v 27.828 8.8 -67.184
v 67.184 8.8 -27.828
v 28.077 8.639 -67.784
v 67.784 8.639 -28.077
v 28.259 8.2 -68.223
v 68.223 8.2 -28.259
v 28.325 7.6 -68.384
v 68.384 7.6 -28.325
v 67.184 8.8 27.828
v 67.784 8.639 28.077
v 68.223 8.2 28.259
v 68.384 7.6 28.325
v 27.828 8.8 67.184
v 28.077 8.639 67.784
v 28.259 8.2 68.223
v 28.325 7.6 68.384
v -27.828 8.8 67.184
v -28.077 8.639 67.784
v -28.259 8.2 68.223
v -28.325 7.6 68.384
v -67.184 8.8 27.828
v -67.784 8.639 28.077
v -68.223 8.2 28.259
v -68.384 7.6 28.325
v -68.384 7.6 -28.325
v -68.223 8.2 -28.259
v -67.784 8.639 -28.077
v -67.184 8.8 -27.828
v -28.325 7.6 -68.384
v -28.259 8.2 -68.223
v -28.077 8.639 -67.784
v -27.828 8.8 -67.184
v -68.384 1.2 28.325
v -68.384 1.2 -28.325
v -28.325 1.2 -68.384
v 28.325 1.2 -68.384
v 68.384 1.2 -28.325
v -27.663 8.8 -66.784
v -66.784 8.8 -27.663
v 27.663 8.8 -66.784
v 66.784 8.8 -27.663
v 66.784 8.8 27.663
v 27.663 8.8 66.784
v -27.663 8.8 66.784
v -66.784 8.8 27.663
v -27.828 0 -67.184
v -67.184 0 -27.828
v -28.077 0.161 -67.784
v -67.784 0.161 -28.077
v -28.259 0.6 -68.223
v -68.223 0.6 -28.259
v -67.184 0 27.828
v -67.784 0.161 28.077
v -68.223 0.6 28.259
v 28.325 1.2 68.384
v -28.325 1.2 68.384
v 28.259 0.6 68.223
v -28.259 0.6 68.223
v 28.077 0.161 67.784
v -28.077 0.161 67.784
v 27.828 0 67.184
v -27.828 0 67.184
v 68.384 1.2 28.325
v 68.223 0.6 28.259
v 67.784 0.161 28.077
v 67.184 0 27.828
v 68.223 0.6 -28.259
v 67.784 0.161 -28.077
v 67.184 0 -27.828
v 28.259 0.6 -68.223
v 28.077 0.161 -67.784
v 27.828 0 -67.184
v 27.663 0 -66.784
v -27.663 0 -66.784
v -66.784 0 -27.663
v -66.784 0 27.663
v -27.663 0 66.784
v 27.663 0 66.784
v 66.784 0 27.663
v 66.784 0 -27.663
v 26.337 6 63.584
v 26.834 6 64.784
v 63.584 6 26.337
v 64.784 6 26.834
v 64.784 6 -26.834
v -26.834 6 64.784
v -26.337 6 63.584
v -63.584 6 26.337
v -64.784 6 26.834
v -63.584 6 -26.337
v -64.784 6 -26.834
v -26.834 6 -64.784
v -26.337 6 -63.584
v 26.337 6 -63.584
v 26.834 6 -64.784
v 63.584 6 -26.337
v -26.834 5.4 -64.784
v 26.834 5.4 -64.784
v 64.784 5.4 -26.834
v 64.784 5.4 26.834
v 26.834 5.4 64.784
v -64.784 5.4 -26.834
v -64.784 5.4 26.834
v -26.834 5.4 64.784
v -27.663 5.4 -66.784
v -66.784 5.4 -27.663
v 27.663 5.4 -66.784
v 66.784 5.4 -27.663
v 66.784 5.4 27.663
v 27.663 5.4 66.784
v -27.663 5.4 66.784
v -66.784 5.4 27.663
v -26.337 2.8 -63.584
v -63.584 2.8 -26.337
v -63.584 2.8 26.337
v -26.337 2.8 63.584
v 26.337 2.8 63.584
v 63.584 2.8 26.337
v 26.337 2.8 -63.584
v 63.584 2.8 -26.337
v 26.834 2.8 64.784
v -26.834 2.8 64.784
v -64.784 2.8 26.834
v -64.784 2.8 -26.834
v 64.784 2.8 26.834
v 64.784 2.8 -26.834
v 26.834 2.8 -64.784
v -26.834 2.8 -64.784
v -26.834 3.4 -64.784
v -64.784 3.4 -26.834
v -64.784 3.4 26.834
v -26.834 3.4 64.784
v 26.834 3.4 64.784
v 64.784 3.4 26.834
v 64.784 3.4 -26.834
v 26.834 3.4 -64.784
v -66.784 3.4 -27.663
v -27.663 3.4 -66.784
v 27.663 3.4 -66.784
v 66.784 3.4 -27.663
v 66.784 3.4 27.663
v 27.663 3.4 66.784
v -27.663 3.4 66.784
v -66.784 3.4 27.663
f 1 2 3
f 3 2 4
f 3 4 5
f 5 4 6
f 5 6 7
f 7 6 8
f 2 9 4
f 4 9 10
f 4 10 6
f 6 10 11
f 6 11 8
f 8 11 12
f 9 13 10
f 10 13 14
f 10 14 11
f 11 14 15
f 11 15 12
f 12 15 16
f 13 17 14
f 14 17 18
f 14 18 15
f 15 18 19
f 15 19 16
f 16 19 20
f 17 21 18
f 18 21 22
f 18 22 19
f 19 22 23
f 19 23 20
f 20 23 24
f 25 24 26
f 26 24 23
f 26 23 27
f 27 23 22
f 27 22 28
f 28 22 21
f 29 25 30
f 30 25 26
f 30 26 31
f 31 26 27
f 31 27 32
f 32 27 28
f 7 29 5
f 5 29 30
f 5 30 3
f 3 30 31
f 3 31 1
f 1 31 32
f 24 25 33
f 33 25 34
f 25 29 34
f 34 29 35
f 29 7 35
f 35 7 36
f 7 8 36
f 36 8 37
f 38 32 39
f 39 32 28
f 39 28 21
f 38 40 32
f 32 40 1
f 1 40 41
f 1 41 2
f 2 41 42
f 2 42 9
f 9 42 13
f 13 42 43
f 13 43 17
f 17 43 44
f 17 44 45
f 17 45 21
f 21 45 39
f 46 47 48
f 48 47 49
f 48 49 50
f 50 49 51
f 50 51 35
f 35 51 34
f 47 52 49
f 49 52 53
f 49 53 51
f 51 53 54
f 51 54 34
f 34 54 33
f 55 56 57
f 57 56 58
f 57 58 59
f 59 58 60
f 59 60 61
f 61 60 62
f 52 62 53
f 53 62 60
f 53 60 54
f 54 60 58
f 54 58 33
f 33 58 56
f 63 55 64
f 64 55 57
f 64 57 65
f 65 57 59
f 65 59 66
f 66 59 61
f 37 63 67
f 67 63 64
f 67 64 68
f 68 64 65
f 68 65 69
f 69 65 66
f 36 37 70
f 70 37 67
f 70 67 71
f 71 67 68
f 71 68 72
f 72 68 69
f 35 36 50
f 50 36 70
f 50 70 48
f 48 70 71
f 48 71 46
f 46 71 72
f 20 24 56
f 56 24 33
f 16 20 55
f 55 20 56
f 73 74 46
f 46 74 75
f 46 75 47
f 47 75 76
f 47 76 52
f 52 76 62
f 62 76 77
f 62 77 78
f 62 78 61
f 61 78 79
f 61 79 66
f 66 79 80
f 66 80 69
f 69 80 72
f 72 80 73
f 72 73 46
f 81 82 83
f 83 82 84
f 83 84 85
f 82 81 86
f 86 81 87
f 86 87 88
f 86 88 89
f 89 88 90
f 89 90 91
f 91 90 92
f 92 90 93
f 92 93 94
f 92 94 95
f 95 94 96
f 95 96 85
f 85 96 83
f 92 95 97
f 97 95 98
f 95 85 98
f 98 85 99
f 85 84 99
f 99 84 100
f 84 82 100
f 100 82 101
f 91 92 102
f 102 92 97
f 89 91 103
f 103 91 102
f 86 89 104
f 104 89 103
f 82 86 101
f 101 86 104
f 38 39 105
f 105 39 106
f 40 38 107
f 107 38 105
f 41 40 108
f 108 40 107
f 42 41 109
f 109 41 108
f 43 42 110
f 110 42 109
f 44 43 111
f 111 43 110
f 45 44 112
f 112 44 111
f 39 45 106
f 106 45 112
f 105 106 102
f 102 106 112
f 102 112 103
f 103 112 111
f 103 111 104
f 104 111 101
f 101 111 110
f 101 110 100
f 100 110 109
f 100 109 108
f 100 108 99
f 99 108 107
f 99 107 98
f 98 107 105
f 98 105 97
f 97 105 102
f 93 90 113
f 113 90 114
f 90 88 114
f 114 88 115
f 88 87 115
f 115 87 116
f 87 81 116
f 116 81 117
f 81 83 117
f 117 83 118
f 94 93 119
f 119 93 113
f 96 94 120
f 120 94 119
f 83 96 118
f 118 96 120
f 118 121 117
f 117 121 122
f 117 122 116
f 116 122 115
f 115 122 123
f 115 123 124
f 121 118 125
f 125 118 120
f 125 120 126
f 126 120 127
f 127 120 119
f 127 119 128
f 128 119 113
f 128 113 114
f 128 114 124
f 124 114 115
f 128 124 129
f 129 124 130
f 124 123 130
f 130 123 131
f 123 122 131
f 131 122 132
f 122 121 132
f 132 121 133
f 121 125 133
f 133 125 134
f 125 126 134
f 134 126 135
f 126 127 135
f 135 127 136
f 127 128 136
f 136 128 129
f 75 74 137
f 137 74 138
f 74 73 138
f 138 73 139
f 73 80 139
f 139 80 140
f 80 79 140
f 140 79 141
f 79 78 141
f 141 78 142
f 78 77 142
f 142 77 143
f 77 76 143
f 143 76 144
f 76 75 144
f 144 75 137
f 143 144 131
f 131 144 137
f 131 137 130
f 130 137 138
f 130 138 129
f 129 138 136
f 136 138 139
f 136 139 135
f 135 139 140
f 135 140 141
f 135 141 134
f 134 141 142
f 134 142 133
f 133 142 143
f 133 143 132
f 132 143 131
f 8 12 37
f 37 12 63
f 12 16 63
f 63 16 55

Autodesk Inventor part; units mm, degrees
ref_plane "YZ Plane" through (0, 0, 0) normal (1, 0, 0) x (0, 1, 0)
ref_plane "XZ Plane" through (0, 0, 0) normal (0, 1, 0) x (-1, 0, 0)
sketch "스케치1" plane through (0, 0, 0) normal (0, 1, 0) x (-1, 0, 0)
  line L0 (-65.1838, 27) -> (-27, 65.1838)
  line L1 (-27, 65.1838) -> (27, 65.1838)
  line L2 (27, 65.1838) -> (65.1838, 27)
  line L3 (65.1838, 27) -> (65.1838, -27)
  line L4 (65.1838, -27) -> (27, -65.1838)
  line L5 (27, -65.1838) -> (-27, -65.1838)
  line L6 (-27, -65.1838) -> (-65.1838, -27)
  line L7 (-65.1838, -27) -> (-65.1838, 27)
  line L8 (68.3838, 28.3255) -> (68.3838, -28.3255)
  line L9 (68.3838, -28.3255) -> (28.3255, -68.3838)
  line L10 (28.3255, -68.3838) -> (-28.3255, -68.3838)
  line L11 (-28.3255, -68.3838) -> (-68.3838, -28.3255)
  line L12 (-68.3838, -28.3255) -> (-68.3838, 28.3255)
  line L13 (-68.3838, 28.3255) -> (-28.3255, 68.3838)
  line L14 (-28.3255, 68.3838) -> (28.3255, 68.3838)
  line L15 (28.3255, 68.3838) -> (68.3838, 28.3255)
  point P0 (0, 0)
  point P1 (0, 0)
  point P2 (0, 0)
  dimension "d0" = 54
  dimension "d1" = 3.2
extrude "돌출1" add sketch "스케치1" along normal blind 8.8 contours L0 L1 L2 L3 L4 L5 L6 L7 | L8 L9 L10 L11 L12 L13 L14 L15
sketch "스케치3" plane through (0, 0, 0) normal (0, -1, 0) x (1, 0, 0)
  line L0 (-26.8343, 64.7838) -> (26.8343, 64.7838)
  line L1 (26.8343, 64.7838) -> (64.7838, 26.8343)
  line L2 (64.7838, 26.8343) -> (64.7838, -26.8343)
  line L3 (64.7838, -26.8343) -> (26.8343, -64.7838)
  line L4 (26.8343, -64.7838) -> (-26.8343, -64.7838)
  line L5 (-26.8343, -64.7838) -> (-64.7838, -26.8343)
  line L6 (-64.7838, -26.8343) -> (-64.7838, 26.8343)
  line L7 (-64.7838, 26.8343) -> (-26.8343, 64.7838)
  line L8 (-27.6627, 66.7838) -> (27.6627, 66.7838)
  line L9 (27.6627, 66.7838) -> (66.7838, 27.6627)
  line L10 (66.7838, 27.6627) -> (66.7838, -27.6627)
  line L11 (66.7838, -27.6627) -> (27.6627, -66.7838)
  line L12 (27.6627, -66.7838) -> (-27.6627, -66.7838)
  line L13 (-27.6627, -66.7838) -> (-66.7838, -27.6627)
  line L14 (-66.7838, -27.6627) -> (-66.7838, 27.6627)
  line L15 (-66.7838, 27.6627) -> (-27.6627, 66.7838)
  line L16 (-28.3255, 68.3838) -> (28.3255, 68.3838) projected
  point P0 (0, 0)
  point P1 (0, 0)
  point P2 (0, 0)
  point P3 (0, 0)
  dimension "d9" = 2
  dimension "d144" = 1.6
extrude "돌출3" cut sketch "스케치3" against normal blind 3.4
sketch "스케치14" plane through (0, 0, 0) normal (0, -1, 0) x (1, 0, 0)
  line L0 (64.7838, 26.8343) -> (26.8343, 64.7838) projected
  line L1 (26.8343, 64.7838) -> (-26.8343, 64.7838) projected
  line L2 (-26.8343, 64.7838) -> (-64.7838, 26.8343) projected
  line L3 (-64.7838, 26.8343) -> (-64.7838, -26.8343) projected
  line L4 (-64.7838, -26.8343) -> (-26.8343, -64.7838) projected
  line L5 (-26.8343, -64.7838) -> (26.8343, -64.7838) projected
  line L6 (26.8343, -64.7838) -> (64.7838, -26.8343) projected
  line L7 (64.7838, -26.8343) -> (64.7838, 26.8343) projected
  point P0 (0, 0)
extrude "돌출16" cut sketch "스케치14" against normal blind 2.8
sketch "스케치15" plane through (0, 2.8, 0) normal (0, -1, 0) x (1, 0, 0)
  line L0 (-26.3373, 63.5838) -> (26.3373, 63.5838)
  line L1 (26.3373, 63.5838) -> (63.5838, 26.3373)
  line L2 (63.5838, 26.3373) -> (63.5838, -26.3373)
  line L3 (63.5838, -26.3373) -> (26.3373, -63.5838)
  line L4 (26.3373, -63.5838) -> (-26.3373, -63.5838)
  line L5 (-26.3373, -63.5838) -> (-63.5838, -26.3373)
  line L6 (-63.5838, -26.3373) -> (-63.5838, 26.3373)
  line L7 (-63.5838, 26.3373) -> (-26.3373, 63.5838)
  line L8 (-26.8343, 64.7838) -> (26.8343, 64.7838) projected
  point P0 (0, 0)
  point P1 (0, 0)
  dimension "d140" = 1.2
extrude "돌출17" cut sketch "스케치15" against normal up to surface (6 mm away)
ref_plane "작업 평면3" through (0, 4.4, 0) normal (0, -1, 0) x (1, 0, 0)
mirror "미러6" about plane through (0, 4.4, 0) normal (0, -1, 0) of "돌출3", "돌출16"
fillet "모깎기2" radius 1.2 16 edges at (0, 0, 68.3838) (-48.3546, 0, 48.3546) (-68.3838, 0, 0) (-48.3546, 0, -48.3546) (0, 0, -68.3838) (48.3546, 0, -48.3546) (68.3838, 0, 0) (48.3546, 0, 48.3546) (-48.3546, 8.8, 48.3546) (-68.3838, 8.8, 0) (-48.3546, 8.8, -48.3546) (0, 8.8, -68.3838) (48.3546, 8.8, -48.3546) (68.3838, 8.8, 0) (48.3546, 8.8, 48.3546) (0, 8.8, 68.3838)
properties part number "OV-PAM_ring_2"
